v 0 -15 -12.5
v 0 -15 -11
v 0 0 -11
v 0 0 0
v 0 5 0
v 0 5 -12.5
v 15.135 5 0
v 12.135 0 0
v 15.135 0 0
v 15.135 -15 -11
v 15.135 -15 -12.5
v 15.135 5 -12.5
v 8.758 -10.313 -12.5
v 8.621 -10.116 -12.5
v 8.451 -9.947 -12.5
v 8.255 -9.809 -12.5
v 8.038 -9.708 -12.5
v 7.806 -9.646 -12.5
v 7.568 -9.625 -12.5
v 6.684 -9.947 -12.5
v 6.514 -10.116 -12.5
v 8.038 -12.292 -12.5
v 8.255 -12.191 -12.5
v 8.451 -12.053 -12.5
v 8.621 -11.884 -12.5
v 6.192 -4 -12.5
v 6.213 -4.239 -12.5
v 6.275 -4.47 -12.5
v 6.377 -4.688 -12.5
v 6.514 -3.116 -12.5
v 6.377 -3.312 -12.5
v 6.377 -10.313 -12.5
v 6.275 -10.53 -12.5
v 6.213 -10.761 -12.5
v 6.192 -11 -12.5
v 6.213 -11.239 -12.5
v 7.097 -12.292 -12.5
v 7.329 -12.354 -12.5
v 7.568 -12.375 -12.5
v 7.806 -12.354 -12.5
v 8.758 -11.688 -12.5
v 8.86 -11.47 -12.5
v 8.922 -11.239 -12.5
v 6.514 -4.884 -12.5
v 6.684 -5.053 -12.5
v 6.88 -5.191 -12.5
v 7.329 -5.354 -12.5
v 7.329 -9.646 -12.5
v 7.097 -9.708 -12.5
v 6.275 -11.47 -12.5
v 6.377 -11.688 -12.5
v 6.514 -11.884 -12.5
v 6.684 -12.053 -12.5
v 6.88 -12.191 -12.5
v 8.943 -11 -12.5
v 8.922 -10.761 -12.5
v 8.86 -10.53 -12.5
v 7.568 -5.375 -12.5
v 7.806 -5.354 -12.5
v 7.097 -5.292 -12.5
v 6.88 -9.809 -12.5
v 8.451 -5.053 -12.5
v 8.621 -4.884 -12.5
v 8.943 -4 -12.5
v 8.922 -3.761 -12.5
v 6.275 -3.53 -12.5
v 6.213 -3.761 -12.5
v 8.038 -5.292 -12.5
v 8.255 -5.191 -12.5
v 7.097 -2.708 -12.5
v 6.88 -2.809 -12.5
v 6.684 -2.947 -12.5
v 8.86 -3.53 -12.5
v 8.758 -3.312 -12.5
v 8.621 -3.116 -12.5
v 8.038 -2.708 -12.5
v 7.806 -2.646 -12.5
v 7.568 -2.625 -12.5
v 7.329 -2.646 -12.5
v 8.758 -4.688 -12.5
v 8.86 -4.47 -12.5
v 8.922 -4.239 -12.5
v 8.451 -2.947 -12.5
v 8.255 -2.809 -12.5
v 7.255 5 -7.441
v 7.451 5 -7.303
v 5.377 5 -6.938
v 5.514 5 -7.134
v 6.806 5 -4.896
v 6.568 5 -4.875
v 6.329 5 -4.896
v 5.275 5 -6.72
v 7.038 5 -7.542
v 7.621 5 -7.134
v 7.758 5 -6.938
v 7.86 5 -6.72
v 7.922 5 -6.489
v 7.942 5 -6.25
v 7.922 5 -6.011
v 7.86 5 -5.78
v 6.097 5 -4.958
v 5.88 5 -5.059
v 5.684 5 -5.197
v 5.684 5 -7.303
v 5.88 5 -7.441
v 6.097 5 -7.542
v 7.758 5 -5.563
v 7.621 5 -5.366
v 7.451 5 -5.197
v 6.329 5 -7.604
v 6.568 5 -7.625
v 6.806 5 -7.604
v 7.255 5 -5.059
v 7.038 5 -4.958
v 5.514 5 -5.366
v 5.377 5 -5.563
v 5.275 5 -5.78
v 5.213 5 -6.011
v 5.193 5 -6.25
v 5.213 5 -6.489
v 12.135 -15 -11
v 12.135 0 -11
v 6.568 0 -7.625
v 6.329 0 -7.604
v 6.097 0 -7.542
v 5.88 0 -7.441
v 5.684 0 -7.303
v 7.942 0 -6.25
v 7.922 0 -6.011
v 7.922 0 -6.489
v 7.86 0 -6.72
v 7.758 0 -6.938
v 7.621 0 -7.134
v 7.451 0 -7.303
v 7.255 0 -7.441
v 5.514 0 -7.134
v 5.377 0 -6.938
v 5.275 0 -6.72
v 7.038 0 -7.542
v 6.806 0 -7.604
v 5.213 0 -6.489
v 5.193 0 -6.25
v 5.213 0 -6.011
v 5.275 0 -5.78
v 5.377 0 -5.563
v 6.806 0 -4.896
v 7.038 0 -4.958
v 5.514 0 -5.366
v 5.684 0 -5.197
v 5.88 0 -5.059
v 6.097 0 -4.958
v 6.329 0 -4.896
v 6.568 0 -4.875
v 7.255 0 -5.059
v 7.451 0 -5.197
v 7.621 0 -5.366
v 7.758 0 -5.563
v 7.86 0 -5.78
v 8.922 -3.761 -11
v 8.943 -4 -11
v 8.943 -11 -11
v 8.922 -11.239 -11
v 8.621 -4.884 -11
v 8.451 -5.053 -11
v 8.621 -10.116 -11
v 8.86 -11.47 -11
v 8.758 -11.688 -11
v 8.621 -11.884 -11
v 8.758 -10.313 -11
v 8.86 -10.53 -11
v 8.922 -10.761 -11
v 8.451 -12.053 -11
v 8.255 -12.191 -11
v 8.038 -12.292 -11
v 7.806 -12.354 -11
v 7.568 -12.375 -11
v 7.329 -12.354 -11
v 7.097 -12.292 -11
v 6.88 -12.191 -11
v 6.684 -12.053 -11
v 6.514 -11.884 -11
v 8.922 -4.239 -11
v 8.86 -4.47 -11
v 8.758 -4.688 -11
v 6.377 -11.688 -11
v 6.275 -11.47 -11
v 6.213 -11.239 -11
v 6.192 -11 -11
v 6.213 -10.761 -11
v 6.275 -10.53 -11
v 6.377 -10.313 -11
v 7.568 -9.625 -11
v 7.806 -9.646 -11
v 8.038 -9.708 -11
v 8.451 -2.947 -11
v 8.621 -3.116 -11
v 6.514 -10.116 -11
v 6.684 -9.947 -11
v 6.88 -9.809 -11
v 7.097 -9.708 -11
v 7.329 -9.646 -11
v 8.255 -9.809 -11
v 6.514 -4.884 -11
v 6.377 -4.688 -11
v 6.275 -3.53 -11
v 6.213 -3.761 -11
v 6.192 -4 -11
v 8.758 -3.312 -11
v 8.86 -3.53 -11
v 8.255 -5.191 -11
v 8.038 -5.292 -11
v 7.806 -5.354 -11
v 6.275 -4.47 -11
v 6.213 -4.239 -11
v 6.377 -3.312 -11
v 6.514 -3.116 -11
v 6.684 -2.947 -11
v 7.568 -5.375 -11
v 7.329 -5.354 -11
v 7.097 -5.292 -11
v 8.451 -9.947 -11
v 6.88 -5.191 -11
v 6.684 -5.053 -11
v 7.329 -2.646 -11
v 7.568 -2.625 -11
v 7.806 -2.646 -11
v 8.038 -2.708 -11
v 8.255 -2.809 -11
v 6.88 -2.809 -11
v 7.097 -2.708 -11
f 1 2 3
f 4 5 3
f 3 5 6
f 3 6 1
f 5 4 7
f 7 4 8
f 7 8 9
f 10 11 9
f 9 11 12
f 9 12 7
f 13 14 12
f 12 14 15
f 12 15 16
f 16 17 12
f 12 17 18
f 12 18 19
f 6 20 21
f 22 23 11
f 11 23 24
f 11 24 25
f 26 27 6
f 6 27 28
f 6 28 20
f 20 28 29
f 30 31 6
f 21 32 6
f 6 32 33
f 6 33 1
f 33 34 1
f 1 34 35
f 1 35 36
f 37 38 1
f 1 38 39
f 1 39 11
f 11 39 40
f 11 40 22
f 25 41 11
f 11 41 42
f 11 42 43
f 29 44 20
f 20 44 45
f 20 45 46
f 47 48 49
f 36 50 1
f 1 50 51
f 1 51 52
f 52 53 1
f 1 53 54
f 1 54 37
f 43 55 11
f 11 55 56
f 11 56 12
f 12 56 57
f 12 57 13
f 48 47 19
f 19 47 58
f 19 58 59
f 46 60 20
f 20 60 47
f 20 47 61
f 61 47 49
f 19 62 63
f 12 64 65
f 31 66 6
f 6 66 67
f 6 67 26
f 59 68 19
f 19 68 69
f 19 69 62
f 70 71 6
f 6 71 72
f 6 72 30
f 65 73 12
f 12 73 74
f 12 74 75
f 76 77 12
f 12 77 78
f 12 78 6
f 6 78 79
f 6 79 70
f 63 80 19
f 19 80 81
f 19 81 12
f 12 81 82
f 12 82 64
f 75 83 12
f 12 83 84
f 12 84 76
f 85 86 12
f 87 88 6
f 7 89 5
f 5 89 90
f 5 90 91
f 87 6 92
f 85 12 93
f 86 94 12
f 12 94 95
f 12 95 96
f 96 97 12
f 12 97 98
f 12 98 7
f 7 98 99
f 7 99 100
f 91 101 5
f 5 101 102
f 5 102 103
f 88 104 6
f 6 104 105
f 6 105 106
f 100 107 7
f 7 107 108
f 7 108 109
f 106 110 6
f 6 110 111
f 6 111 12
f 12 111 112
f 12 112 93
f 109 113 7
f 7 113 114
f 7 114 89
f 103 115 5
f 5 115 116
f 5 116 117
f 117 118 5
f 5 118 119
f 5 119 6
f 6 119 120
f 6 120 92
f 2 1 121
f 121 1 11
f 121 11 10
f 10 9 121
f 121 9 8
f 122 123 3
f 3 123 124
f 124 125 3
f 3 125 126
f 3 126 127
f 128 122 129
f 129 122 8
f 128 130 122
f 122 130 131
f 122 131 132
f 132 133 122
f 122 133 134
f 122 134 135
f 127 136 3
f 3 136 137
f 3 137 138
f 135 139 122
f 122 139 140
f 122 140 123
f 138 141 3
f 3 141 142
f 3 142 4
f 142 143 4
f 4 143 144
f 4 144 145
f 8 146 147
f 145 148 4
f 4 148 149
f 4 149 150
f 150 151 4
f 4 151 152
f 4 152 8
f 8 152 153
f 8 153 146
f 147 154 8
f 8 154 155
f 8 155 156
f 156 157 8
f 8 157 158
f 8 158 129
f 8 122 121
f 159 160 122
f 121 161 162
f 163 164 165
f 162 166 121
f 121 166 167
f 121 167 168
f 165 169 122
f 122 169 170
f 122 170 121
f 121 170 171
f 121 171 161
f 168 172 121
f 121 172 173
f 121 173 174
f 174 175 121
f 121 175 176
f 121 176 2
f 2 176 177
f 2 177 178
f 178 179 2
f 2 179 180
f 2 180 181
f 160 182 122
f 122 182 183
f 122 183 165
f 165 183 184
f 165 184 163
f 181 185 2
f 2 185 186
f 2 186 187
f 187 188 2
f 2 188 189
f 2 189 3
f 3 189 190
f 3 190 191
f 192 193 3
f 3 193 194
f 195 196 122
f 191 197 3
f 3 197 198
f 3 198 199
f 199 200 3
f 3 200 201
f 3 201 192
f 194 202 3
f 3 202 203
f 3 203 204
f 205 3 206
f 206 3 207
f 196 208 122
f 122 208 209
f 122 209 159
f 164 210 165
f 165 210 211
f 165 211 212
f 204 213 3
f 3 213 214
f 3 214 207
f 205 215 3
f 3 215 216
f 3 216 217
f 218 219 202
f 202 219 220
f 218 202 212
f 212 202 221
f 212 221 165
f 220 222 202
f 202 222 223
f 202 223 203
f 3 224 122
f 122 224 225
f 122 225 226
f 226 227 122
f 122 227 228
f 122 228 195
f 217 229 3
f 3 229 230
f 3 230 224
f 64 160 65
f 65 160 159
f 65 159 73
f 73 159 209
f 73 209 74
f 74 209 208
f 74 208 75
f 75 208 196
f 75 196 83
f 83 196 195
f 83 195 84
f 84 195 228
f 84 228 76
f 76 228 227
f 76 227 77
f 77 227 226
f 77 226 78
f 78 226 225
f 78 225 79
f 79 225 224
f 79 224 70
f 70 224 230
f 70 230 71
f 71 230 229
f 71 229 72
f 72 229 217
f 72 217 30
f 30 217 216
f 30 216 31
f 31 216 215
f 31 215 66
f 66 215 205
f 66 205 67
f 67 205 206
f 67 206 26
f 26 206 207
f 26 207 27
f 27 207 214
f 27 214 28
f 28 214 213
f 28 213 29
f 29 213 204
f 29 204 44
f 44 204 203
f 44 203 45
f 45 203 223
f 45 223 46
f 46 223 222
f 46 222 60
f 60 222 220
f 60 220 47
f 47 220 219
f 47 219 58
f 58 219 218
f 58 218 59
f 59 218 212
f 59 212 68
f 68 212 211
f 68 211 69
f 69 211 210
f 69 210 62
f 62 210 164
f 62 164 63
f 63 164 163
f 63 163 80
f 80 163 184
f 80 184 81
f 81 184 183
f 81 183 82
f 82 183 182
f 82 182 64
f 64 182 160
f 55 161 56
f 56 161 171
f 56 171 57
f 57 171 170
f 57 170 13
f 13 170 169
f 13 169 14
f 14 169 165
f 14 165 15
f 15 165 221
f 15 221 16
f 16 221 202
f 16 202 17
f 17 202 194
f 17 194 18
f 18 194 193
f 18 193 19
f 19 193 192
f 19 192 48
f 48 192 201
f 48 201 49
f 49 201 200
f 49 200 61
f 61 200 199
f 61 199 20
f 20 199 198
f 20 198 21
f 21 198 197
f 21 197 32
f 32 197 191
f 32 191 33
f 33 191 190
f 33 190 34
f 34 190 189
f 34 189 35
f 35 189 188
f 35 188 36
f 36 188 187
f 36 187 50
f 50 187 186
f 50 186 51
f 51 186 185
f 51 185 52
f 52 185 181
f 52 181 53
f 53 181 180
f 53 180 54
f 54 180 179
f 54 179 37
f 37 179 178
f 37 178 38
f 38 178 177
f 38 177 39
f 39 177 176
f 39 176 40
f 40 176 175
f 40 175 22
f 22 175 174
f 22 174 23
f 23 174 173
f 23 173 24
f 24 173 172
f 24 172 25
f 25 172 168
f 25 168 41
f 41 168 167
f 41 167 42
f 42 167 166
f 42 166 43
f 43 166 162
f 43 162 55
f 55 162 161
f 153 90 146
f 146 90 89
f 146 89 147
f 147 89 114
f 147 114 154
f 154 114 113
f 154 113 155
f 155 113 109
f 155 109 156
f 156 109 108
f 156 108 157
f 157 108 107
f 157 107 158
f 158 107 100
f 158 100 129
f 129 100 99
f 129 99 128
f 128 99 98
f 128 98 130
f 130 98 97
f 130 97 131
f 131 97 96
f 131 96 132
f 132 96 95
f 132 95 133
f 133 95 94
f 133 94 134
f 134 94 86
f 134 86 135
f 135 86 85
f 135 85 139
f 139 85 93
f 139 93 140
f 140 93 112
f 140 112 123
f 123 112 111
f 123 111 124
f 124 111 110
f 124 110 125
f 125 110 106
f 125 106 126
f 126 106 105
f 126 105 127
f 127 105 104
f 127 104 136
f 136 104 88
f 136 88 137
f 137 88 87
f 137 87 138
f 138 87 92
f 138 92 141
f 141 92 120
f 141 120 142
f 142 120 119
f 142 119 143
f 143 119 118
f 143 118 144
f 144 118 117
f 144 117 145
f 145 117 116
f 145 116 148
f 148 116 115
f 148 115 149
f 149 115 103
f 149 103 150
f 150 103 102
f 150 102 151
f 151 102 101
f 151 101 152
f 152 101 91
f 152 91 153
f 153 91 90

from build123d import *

# Parameters (mm, degrees)
SKETCH1_W           = 15.135
SKETCH1_H           = 12.5
BASE_DEPTH          = 5
SKETCH2_W           = 15.135
SKETCH2_H           = 15
BOSS_EXTRUDE2_DEPTH = 1.5
BOSS_EXTRUDE3_DEPTH = 15.135
SKETCH4_W           = 9.135
SKETCH4_H           = 15
CUT_EXTRUDE1_DEPTH  = 11
SKETCH5_R           = 1.375
CUT_EXTRUDE2_DEPTH  = 2
SKETCH6_R           = 1.375
CUT_EXTRUDE3_DEPTH  = 5.75
CUT_EXTRUDE4_DEPTH  = 25.485172511


with BuildPart() as part:
    # Sketch1 → base (new body)
    with BuildSketch(Plane(origin=(0, 0, 0), x_dir=(1, 0, 0), z_dir=(0, 1, 0))):
        with Locations((7.5675, 6.25)):
            Rectangle(SKETCH1_W, SKETCH1_H)
    extrude(amount=BASE_DEPTH)

    # Sketch2 → Boss-Extrude2 (add)
    with BuildSketch(Plane(origin=(0, 0, -12.5), x_dir=(-1, 0, 0), z_dir=(0, 0, -1))):
        with Locations((-7.5675, -7.5)):
            Rectangle(SKETCH2_W, SKETCH2_H)
    extrude(amount=-BOSS_EXTRUDE2_DEPTH)

    # Sketch3 → Boss-Extrude3 (add)
    with BuildSketch(Plane.ZY):
        Polygon((0, 0), (-11, -15), (-11, 0), align=None)
    extrude(amount=-BOSS_EXTRUDE3_DEPTH)

    # Sketch4 → Cut-Extrude1 (cut)
    with BuildSketch(Plane.XY):
        with Locations((7.5675, -7.5)):
            Rectangle(SKETCH4_W, SKETCH4_H)
    extrude(amount=-CUT_EXTRUDE1_DEPTH, mode=Mode.SUBTRACT)

    # Sketch5 → Cut-Extrude2 (cut)
    with BuildSketch(Plane.XY.offset(-11)):
        with Locations((7.5675, -4)):
            Circle(SKETCH5_R)
        with Locations((7.5675, -11)):
            Circle(SKETCH5_R)
    extrude(amount=-CUT_EXTRUDE2_DEPTH, mode=Mode.SUBTRACT)

    # Sketch6 → Cut-Extrude3 (cut)
    with BuildSketch(Plane(origin=(0, 5, 0), x_dir=(1, 0, 0), z_dir=(0, 1, 0))):
        with Locations((6.5675, 6.25)):
            Circle(SKETCH6_R)
    extrude(amount=-CUT_EXTRUDE3_DEPTH, mode=Mode.SUBTRACT)

    # Sketch7 → Cut-Extrude4 (cut)
    with BuildSketch(Plane.ZY.offset(-12.135)):
        Polygon((-11, -15), (0, 0), (-11, 0), align=None)
    extrude(amount=CUT_EXTRUDE4_DEPTH, mode=Mode.SUBTRACT)


solid = part.part
